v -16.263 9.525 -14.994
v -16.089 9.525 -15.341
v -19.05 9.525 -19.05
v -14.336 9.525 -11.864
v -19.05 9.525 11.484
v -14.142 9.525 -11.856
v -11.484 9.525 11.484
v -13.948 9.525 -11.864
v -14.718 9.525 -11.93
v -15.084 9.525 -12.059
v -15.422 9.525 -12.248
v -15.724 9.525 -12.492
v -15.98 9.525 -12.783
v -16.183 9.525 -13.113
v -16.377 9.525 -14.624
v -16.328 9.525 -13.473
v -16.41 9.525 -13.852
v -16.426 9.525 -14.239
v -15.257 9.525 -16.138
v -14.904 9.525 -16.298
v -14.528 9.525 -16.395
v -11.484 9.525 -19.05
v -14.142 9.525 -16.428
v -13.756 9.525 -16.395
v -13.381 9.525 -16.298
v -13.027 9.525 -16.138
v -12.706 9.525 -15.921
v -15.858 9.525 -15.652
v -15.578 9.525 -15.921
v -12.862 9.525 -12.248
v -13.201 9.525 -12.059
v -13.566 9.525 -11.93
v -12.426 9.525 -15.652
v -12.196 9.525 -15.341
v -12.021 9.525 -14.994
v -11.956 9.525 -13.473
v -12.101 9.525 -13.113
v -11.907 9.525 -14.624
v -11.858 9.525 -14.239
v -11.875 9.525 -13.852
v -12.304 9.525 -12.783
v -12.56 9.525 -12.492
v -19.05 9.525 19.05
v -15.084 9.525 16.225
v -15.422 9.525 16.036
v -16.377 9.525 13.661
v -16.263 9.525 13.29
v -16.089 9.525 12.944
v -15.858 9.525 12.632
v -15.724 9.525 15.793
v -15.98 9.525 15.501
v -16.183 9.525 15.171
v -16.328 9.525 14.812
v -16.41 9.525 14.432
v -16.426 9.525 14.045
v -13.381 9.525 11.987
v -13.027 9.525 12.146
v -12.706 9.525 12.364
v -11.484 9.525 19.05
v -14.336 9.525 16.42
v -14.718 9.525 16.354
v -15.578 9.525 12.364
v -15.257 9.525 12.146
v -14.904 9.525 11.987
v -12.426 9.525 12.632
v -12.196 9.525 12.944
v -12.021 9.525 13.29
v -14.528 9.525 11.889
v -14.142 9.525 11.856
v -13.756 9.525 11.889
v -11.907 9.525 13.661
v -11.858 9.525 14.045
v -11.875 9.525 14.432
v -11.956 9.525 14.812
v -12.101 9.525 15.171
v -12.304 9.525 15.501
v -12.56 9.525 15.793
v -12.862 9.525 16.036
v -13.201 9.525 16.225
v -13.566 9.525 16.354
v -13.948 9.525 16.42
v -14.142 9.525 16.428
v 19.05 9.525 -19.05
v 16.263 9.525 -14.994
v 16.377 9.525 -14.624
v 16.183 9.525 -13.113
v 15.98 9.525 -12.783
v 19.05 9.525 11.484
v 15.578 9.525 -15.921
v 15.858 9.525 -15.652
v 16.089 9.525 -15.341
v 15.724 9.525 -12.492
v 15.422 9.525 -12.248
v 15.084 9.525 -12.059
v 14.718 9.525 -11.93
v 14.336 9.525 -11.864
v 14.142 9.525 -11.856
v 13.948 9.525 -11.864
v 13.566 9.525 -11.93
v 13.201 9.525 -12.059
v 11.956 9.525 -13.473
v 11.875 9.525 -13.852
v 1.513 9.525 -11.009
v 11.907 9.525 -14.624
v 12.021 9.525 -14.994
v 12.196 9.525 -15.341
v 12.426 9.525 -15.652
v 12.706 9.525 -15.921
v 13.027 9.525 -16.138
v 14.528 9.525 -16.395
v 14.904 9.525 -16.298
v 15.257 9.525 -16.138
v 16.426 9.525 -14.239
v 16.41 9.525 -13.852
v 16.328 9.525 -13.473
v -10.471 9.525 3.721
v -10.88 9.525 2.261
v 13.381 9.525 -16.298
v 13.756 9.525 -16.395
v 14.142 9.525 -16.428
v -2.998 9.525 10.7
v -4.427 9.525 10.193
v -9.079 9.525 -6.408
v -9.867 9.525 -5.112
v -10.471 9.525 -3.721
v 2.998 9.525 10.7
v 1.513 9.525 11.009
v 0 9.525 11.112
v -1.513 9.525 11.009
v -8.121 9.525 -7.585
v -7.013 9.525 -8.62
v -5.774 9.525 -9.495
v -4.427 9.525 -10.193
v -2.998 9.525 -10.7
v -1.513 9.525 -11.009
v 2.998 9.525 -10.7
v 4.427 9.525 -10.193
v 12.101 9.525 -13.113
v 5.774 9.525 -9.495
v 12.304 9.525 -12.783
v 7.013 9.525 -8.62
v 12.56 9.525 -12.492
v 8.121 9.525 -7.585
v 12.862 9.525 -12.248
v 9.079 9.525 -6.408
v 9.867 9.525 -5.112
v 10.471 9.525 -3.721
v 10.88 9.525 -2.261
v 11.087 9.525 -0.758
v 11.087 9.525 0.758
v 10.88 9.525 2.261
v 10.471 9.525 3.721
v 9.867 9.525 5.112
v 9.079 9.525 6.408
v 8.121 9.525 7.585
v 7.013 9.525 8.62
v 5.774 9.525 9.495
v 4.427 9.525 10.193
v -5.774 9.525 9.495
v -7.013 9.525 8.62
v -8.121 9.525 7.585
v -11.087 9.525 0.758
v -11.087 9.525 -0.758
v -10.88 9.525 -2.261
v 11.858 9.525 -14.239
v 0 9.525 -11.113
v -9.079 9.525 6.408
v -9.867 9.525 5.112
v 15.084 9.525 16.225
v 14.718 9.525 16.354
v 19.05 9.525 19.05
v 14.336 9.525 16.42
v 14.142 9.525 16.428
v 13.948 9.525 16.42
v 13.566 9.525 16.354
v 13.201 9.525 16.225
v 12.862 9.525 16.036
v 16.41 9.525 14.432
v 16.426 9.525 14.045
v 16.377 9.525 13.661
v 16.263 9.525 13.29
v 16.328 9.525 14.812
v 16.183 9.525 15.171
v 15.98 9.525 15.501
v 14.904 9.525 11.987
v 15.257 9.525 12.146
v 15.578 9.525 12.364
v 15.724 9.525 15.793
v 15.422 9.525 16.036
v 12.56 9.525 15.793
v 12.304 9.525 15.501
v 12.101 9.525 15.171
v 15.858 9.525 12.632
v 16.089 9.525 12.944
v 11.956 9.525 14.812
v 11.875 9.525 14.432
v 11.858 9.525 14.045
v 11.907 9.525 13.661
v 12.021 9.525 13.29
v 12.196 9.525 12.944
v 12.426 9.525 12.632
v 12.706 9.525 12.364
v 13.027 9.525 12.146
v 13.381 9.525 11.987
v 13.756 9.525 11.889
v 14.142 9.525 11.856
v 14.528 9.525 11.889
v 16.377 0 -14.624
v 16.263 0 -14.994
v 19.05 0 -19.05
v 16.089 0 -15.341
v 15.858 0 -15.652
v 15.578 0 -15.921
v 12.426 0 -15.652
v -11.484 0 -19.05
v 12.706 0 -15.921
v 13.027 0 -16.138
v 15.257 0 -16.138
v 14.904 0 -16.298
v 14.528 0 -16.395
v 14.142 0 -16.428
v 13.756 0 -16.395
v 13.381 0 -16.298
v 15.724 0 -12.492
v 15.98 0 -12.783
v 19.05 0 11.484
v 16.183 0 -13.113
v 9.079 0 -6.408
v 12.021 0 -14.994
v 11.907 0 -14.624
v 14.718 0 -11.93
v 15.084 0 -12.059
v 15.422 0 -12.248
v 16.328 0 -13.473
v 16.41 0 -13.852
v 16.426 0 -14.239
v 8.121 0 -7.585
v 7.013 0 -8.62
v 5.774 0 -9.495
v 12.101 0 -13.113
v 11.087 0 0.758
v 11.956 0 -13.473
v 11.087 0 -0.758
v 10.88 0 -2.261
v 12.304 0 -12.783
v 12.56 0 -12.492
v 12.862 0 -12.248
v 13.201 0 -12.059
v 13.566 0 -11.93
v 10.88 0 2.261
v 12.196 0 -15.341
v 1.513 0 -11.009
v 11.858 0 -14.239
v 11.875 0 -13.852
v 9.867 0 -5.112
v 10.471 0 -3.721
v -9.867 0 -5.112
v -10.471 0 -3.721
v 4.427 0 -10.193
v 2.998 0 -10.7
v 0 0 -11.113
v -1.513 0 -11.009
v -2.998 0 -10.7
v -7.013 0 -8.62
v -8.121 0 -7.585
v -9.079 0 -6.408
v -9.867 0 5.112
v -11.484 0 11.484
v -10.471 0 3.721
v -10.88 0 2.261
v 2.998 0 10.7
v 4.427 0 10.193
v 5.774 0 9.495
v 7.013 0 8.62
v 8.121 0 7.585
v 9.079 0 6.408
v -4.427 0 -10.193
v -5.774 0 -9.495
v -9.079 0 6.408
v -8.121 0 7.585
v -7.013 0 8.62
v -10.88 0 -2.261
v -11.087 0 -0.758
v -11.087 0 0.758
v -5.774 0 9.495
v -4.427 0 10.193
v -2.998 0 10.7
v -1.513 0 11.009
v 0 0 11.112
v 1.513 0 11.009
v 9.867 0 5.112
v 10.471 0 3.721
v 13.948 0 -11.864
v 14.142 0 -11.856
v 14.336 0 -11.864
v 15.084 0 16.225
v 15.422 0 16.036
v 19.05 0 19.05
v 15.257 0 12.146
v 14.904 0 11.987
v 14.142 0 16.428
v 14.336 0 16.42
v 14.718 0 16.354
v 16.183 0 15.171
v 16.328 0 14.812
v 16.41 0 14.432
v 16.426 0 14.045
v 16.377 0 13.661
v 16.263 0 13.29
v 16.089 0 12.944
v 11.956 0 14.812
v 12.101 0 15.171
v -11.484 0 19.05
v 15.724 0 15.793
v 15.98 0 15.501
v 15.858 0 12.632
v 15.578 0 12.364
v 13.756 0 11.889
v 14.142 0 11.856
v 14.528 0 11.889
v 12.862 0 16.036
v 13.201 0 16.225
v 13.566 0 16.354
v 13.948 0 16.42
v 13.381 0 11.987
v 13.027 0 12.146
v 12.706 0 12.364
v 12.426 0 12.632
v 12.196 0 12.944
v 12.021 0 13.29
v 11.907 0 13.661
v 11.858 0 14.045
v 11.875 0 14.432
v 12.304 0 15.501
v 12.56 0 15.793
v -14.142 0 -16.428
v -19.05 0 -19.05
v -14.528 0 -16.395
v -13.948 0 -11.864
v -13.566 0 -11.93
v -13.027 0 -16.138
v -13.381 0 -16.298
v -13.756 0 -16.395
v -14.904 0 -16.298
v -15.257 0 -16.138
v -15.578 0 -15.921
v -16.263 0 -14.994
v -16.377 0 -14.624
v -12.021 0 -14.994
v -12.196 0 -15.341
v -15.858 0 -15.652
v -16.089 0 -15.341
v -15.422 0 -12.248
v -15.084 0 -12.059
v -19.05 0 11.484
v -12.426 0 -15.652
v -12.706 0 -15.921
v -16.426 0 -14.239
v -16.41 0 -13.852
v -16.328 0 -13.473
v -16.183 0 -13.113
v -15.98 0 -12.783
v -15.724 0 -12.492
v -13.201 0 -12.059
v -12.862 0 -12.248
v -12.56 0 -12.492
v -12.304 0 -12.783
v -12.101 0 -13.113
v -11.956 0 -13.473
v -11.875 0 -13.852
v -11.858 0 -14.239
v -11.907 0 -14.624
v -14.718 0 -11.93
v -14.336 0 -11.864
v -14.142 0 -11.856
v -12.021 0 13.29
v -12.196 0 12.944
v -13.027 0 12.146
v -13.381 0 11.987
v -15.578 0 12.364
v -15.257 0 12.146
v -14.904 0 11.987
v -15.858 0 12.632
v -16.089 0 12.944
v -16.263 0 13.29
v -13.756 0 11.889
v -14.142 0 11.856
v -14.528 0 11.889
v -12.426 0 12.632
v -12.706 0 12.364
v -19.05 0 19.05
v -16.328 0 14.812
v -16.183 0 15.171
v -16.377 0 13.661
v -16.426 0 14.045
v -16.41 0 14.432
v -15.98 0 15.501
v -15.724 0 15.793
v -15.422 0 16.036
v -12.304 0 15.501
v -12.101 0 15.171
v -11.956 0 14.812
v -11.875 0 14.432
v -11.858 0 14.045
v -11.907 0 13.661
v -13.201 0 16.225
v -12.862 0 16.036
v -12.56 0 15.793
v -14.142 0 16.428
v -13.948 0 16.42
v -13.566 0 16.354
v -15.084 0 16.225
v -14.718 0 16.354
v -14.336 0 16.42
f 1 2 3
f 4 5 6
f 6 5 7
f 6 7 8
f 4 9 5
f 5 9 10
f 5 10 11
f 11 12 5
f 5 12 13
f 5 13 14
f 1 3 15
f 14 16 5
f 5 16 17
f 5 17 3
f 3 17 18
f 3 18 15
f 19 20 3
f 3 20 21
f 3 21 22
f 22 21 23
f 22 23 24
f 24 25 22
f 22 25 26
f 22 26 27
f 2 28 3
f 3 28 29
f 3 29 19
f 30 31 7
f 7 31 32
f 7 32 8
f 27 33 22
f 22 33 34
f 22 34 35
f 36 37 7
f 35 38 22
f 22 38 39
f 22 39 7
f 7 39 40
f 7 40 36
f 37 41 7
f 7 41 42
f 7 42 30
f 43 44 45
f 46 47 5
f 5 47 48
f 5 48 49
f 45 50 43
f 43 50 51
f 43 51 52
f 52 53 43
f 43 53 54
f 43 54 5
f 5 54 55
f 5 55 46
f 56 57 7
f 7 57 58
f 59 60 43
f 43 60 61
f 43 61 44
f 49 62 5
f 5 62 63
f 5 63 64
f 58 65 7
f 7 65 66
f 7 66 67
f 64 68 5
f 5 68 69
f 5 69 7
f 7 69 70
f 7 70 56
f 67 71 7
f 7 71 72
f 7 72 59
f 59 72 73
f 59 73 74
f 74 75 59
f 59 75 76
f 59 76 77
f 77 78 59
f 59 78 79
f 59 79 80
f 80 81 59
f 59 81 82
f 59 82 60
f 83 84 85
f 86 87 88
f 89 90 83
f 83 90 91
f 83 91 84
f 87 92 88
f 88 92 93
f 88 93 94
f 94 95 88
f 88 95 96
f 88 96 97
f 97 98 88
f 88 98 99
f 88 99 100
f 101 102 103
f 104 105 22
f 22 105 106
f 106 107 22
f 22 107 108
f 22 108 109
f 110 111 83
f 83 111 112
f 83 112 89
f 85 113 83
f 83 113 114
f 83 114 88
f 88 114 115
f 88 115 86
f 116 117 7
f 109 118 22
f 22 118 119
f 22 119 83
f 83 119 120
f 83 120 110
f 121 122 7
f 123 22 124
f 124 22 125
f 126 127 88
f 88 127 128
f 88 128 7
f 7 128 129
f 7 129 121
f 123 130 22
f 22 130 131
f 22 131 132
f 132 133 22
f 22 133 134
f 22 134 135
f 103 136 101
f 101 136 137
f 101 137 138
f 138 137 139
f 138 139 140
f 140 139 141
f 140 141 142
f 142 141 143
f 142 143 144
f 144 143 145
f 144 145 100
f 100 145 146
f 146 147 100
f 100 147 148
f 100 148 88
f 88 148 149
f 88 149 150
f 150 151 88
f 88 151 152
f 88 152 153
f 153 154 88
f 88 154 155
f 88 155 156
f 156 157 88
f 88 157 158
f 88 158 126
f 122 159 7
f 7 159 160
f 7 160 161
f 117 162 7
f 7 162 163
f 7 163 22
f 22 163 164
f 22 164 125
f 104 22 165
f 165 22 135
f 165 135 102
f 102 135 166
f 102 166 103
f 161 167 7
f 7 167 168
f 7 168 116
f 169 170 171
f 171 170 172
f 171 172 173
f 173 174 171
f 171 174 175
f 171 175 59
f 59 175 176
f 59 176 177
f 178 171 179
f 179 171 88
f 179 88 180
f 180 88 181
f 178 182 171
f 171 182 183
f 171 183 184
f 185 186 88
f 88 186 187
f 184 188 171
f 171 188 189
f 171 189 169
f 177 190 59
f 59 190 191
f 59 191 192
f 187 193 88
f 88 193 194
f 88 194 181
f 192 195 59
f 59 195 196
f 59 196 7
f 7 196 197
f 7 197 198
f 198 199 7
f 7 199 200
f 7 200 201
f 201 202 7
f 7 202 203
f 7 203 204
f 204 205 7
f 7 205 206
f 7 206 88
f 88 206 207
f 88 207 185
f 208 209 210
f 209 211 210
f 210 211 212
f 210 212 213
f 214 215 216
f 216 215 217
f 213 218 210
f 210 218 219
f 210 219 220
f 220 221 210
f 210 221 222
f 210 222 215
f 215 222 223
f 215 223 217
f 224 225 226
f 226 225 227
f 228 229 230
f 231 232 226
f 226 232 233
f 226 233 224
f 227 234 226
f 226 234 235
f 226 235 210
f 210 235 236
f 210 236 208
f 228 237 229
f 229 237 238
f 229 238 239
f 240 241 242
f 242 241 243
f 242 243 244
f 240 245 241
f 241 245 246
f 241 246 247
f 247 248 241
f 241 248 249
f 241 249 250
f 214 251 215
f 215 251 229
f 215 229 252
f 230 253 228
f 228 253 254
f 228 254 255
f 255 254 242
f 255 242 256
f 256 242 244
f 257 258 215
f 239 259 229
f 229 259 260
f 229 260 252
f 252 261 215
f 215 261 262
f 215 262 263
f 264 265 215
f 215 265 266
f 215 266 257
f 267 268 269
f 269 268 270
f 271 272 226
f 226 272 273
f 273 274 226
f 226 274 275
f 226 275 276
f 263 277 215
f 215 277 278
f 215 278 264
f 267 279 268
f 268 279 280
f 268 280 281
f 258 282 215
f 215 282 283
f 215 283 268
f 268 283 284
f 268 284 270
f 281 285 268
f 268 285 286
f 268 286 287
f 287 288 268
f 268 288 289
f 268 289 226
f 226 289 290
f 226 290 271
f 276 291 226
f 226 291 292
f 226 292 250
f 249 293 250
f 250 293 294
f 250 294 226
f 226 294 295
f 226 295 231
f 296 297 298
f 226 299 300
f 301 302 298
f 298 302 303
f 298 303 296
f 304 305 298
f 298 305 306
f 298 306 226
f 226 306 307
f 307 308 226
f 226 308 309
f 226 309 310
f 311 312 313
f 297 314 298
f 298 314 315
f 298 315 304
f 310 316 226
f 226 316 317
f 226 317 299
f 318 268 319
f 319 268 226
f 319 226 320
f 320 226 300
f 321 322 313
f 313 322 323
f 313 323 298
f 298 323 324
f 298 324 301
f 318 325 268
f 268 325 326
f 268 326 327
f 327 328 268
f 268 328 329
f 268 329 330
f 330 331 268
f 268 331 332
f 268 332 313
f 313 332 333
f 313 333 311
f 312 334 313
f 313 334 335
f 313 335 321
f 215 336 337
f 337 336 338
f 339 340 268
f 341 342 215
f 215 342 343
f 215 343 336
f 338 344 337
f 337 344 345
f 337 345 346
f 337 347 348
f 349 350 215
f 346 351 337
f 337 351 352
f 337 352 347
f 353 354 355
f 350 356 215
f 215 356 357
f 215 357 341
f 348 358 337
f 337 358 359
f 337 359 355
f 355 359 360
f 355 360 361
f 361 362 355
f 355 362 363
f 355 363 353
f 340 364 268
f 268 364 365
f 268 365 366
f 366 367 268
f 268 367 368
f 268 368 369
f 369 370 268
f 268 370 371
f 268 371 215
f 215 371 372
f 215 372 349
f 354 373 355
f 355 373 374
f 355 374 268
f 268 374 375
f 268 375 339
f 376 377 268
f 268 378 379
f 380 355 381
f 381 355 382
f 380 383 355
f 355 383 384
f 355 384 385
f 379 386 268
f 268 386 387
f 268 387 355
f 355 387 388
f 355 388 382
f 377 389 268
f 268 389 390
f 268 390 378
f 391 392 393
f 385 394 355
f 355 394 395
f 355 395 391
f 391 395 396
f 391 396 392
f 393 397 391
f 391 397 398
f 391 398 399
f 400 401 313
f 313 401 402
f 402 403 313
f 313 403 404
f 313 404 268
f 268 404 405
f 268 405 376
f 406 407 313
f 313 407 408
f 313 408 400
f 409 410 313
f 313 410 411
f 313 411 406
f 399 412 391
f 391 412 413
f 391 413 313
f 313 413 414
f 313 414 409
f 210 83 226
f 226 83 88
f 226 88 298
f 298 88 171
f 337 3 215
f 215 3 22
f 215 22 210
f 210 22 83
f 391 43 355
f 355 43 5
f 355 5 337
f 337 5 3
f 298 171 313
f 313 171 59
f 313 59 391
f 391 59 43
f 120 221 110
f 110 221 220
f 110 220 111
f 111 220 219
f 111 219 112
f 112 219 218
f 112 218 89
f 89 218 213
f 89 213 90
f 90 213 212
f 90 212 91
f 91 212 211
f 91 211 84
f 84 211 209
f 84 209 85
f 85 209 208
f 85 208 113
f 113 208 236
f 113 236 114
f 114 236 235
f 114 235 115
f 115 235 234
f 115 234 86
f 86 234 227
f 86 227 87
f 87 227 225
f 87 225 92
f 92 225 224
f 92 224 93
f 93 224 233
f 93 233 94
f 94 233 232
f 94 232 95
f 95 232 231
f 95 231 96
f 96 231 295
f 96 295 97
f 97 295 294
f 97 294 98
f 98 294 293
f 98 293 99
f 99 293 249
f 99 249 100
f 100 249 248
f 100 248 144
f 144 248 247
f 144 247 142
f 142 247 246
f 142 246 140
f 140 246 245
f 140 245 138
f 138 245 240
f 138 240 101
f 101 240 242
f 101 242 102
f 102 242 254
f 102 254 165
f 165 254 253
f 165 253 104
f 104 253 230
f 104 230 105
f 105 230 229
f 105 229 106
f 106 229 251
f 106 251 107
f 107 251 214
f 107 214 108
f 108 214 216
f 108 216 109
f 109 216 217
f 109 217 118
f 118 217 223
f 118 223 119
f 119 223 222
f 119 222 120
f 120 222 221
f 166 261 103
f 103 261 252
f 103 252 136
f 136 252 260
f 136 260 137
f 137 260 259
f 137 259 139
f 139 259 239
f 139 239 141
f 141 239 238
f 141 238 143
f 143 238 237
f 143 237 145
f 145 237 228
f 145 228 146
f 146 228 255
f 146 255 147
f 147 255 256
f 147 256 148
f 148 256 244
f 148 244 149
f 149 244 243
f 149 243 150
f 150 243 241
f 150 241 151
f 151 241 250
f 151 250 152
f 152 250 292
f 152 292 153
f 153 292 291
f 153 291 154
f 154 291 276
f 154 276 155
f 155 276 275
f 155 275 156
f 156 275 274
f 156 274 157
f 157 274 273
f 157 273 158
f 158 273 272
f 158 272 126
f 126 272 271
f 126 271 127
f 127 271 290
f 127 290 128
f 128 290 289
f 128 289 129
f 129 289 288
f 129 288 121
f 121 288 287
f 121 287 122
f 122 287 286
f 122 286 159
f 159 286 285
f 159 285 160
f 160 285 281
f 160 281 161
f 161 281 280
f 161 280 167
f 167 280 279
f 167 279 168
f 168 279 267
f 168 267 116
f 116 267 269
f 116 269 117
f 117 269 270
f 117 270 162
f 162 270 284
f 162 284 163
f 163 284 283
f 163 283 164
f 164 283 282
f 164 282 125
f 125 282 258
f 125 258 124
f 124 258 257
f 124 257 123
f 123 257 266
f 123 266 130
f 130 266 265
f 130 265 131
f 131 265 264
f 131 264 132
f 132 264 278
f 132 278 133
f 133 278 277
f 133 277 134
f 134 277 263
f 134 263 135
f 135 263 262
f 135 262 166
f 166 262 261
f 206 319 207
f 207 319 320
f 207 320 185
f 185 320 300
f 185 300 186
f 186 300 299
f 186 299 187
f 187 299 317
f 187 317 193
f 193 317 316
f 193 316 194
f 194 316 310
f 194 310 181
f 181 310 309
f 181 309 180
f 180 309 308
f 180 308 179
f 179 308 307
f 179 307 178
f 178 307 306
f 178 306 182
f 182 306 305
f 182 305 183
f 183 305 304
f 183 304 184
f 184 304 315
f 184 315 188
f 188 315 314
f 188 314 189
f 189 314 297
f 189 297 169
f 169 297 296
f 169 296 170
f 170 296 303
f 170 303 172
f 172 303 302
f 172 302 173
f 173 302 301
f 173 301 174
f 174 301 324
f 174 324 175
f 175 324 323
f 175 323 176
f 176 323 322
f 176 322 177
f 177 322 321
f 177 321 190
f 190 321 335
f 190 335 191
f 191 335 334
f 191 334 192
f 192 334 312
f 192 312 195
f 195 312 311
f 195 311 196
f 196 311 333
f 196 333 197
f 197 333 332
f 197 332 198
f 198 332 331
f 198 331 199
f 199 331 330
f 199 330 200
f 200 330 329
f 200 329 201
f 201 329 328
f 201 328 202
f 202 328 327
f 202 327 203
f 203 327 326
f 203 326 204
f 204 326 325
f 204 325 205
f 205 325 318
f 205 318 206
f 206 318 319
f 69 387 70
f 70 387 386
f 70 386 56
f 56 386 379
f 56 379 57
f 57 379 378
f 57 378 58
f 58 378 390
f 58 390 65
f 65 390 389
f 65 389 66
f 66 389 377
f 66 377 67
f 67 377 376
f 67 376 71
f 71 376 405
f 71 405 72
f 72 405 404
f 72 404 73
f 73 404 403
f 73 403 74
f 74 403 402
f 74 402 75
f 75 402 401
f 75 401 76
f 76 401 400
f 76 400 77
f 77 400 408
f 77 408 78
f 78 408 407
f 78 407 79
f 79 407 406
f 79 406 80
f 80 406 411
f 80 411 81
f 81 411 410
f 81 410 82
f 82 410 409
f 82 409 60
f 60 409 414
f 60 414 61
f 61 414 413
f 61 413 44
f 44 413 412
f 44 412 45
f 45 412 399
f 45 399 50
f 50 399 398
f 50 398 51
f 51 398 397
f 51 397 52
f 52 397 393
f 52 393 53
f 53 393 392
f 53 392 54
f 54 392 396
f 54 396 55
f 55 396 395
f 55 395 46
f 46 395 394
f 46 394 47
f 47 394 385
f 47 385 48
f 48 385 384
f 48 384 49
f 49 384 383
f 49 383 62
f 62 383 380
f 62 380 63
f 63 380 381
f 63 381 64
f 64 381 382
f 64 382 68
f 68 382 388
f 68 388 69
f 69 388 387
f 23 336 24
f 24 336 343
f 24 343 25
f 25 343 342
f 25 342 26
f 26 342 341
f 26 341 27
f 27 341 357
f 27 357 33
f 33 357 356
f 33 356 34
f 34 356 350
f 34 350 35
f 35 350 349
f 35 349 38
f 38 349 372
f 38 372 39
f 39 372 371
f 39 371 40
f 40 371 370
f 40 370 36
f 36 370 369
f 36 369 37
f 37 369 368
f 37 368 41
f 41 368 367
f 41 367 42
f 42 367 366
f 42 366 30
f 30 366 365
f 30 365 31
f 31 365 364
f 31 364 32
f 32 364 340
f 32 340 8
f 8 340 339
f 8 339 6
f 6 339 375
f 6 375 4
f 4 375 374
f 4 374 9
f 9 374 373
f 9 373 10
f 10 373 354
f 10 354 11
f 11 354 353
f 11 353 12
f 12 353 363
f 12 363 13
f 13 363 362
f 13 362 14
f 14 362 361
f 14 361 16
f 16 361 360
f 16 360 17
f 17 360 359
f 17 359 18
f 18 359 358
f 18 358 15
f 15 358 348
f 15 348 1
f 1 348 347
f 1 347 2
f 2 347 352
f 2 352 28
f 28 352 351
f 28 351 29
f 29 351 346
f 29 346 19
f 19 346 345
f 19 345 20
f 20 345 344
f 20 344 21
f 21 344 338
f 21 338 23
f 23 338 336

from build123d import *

# Parameters (mm, degrees)
SKETCH1_W           = 38.1
SKETCH1_H           = 38.1
SKETCH1_R           = 2.286
SKETCH1_R_2         = 11.1125
BOSS_EXTRUDE1_DEPTH = 9.525


with BuildPart() as part:
    # Sketch1 → Boss-Extrude1 (new body)
    with BuildSketch(Plane(origin=(0, 0, 0), x_dir=(1, 0, 0), z_dir=(0, 1, 0))):
        Rectangle(SKETCH1_W, SKETCH1_H)
        with Locations((14.142135624, 14.142135624)):
            Circle(SKETCH1_R, mode=Mode.SUBTRACT)
        with Locations((14.142135624, -14.142135624)):
            Circle(SKETCH1_R, mode=Mode.SUBTRACT)
        with Locations((-14.142135624, -14.142135624)):
            Circle(SKETCH1_R, mode=Mode.SUBTRACT)
        with Locations((-14.142135624, 14.142135624)):
            Circle(SKETCH1_R, mode=Mode.SUBTRACT)
        Circle(SKETCH1_R_2, mode=Mode.SUBTRACT)
    extrude(amount=BOSS_EXTRUDE1_DEPTH)


solid = part.part
